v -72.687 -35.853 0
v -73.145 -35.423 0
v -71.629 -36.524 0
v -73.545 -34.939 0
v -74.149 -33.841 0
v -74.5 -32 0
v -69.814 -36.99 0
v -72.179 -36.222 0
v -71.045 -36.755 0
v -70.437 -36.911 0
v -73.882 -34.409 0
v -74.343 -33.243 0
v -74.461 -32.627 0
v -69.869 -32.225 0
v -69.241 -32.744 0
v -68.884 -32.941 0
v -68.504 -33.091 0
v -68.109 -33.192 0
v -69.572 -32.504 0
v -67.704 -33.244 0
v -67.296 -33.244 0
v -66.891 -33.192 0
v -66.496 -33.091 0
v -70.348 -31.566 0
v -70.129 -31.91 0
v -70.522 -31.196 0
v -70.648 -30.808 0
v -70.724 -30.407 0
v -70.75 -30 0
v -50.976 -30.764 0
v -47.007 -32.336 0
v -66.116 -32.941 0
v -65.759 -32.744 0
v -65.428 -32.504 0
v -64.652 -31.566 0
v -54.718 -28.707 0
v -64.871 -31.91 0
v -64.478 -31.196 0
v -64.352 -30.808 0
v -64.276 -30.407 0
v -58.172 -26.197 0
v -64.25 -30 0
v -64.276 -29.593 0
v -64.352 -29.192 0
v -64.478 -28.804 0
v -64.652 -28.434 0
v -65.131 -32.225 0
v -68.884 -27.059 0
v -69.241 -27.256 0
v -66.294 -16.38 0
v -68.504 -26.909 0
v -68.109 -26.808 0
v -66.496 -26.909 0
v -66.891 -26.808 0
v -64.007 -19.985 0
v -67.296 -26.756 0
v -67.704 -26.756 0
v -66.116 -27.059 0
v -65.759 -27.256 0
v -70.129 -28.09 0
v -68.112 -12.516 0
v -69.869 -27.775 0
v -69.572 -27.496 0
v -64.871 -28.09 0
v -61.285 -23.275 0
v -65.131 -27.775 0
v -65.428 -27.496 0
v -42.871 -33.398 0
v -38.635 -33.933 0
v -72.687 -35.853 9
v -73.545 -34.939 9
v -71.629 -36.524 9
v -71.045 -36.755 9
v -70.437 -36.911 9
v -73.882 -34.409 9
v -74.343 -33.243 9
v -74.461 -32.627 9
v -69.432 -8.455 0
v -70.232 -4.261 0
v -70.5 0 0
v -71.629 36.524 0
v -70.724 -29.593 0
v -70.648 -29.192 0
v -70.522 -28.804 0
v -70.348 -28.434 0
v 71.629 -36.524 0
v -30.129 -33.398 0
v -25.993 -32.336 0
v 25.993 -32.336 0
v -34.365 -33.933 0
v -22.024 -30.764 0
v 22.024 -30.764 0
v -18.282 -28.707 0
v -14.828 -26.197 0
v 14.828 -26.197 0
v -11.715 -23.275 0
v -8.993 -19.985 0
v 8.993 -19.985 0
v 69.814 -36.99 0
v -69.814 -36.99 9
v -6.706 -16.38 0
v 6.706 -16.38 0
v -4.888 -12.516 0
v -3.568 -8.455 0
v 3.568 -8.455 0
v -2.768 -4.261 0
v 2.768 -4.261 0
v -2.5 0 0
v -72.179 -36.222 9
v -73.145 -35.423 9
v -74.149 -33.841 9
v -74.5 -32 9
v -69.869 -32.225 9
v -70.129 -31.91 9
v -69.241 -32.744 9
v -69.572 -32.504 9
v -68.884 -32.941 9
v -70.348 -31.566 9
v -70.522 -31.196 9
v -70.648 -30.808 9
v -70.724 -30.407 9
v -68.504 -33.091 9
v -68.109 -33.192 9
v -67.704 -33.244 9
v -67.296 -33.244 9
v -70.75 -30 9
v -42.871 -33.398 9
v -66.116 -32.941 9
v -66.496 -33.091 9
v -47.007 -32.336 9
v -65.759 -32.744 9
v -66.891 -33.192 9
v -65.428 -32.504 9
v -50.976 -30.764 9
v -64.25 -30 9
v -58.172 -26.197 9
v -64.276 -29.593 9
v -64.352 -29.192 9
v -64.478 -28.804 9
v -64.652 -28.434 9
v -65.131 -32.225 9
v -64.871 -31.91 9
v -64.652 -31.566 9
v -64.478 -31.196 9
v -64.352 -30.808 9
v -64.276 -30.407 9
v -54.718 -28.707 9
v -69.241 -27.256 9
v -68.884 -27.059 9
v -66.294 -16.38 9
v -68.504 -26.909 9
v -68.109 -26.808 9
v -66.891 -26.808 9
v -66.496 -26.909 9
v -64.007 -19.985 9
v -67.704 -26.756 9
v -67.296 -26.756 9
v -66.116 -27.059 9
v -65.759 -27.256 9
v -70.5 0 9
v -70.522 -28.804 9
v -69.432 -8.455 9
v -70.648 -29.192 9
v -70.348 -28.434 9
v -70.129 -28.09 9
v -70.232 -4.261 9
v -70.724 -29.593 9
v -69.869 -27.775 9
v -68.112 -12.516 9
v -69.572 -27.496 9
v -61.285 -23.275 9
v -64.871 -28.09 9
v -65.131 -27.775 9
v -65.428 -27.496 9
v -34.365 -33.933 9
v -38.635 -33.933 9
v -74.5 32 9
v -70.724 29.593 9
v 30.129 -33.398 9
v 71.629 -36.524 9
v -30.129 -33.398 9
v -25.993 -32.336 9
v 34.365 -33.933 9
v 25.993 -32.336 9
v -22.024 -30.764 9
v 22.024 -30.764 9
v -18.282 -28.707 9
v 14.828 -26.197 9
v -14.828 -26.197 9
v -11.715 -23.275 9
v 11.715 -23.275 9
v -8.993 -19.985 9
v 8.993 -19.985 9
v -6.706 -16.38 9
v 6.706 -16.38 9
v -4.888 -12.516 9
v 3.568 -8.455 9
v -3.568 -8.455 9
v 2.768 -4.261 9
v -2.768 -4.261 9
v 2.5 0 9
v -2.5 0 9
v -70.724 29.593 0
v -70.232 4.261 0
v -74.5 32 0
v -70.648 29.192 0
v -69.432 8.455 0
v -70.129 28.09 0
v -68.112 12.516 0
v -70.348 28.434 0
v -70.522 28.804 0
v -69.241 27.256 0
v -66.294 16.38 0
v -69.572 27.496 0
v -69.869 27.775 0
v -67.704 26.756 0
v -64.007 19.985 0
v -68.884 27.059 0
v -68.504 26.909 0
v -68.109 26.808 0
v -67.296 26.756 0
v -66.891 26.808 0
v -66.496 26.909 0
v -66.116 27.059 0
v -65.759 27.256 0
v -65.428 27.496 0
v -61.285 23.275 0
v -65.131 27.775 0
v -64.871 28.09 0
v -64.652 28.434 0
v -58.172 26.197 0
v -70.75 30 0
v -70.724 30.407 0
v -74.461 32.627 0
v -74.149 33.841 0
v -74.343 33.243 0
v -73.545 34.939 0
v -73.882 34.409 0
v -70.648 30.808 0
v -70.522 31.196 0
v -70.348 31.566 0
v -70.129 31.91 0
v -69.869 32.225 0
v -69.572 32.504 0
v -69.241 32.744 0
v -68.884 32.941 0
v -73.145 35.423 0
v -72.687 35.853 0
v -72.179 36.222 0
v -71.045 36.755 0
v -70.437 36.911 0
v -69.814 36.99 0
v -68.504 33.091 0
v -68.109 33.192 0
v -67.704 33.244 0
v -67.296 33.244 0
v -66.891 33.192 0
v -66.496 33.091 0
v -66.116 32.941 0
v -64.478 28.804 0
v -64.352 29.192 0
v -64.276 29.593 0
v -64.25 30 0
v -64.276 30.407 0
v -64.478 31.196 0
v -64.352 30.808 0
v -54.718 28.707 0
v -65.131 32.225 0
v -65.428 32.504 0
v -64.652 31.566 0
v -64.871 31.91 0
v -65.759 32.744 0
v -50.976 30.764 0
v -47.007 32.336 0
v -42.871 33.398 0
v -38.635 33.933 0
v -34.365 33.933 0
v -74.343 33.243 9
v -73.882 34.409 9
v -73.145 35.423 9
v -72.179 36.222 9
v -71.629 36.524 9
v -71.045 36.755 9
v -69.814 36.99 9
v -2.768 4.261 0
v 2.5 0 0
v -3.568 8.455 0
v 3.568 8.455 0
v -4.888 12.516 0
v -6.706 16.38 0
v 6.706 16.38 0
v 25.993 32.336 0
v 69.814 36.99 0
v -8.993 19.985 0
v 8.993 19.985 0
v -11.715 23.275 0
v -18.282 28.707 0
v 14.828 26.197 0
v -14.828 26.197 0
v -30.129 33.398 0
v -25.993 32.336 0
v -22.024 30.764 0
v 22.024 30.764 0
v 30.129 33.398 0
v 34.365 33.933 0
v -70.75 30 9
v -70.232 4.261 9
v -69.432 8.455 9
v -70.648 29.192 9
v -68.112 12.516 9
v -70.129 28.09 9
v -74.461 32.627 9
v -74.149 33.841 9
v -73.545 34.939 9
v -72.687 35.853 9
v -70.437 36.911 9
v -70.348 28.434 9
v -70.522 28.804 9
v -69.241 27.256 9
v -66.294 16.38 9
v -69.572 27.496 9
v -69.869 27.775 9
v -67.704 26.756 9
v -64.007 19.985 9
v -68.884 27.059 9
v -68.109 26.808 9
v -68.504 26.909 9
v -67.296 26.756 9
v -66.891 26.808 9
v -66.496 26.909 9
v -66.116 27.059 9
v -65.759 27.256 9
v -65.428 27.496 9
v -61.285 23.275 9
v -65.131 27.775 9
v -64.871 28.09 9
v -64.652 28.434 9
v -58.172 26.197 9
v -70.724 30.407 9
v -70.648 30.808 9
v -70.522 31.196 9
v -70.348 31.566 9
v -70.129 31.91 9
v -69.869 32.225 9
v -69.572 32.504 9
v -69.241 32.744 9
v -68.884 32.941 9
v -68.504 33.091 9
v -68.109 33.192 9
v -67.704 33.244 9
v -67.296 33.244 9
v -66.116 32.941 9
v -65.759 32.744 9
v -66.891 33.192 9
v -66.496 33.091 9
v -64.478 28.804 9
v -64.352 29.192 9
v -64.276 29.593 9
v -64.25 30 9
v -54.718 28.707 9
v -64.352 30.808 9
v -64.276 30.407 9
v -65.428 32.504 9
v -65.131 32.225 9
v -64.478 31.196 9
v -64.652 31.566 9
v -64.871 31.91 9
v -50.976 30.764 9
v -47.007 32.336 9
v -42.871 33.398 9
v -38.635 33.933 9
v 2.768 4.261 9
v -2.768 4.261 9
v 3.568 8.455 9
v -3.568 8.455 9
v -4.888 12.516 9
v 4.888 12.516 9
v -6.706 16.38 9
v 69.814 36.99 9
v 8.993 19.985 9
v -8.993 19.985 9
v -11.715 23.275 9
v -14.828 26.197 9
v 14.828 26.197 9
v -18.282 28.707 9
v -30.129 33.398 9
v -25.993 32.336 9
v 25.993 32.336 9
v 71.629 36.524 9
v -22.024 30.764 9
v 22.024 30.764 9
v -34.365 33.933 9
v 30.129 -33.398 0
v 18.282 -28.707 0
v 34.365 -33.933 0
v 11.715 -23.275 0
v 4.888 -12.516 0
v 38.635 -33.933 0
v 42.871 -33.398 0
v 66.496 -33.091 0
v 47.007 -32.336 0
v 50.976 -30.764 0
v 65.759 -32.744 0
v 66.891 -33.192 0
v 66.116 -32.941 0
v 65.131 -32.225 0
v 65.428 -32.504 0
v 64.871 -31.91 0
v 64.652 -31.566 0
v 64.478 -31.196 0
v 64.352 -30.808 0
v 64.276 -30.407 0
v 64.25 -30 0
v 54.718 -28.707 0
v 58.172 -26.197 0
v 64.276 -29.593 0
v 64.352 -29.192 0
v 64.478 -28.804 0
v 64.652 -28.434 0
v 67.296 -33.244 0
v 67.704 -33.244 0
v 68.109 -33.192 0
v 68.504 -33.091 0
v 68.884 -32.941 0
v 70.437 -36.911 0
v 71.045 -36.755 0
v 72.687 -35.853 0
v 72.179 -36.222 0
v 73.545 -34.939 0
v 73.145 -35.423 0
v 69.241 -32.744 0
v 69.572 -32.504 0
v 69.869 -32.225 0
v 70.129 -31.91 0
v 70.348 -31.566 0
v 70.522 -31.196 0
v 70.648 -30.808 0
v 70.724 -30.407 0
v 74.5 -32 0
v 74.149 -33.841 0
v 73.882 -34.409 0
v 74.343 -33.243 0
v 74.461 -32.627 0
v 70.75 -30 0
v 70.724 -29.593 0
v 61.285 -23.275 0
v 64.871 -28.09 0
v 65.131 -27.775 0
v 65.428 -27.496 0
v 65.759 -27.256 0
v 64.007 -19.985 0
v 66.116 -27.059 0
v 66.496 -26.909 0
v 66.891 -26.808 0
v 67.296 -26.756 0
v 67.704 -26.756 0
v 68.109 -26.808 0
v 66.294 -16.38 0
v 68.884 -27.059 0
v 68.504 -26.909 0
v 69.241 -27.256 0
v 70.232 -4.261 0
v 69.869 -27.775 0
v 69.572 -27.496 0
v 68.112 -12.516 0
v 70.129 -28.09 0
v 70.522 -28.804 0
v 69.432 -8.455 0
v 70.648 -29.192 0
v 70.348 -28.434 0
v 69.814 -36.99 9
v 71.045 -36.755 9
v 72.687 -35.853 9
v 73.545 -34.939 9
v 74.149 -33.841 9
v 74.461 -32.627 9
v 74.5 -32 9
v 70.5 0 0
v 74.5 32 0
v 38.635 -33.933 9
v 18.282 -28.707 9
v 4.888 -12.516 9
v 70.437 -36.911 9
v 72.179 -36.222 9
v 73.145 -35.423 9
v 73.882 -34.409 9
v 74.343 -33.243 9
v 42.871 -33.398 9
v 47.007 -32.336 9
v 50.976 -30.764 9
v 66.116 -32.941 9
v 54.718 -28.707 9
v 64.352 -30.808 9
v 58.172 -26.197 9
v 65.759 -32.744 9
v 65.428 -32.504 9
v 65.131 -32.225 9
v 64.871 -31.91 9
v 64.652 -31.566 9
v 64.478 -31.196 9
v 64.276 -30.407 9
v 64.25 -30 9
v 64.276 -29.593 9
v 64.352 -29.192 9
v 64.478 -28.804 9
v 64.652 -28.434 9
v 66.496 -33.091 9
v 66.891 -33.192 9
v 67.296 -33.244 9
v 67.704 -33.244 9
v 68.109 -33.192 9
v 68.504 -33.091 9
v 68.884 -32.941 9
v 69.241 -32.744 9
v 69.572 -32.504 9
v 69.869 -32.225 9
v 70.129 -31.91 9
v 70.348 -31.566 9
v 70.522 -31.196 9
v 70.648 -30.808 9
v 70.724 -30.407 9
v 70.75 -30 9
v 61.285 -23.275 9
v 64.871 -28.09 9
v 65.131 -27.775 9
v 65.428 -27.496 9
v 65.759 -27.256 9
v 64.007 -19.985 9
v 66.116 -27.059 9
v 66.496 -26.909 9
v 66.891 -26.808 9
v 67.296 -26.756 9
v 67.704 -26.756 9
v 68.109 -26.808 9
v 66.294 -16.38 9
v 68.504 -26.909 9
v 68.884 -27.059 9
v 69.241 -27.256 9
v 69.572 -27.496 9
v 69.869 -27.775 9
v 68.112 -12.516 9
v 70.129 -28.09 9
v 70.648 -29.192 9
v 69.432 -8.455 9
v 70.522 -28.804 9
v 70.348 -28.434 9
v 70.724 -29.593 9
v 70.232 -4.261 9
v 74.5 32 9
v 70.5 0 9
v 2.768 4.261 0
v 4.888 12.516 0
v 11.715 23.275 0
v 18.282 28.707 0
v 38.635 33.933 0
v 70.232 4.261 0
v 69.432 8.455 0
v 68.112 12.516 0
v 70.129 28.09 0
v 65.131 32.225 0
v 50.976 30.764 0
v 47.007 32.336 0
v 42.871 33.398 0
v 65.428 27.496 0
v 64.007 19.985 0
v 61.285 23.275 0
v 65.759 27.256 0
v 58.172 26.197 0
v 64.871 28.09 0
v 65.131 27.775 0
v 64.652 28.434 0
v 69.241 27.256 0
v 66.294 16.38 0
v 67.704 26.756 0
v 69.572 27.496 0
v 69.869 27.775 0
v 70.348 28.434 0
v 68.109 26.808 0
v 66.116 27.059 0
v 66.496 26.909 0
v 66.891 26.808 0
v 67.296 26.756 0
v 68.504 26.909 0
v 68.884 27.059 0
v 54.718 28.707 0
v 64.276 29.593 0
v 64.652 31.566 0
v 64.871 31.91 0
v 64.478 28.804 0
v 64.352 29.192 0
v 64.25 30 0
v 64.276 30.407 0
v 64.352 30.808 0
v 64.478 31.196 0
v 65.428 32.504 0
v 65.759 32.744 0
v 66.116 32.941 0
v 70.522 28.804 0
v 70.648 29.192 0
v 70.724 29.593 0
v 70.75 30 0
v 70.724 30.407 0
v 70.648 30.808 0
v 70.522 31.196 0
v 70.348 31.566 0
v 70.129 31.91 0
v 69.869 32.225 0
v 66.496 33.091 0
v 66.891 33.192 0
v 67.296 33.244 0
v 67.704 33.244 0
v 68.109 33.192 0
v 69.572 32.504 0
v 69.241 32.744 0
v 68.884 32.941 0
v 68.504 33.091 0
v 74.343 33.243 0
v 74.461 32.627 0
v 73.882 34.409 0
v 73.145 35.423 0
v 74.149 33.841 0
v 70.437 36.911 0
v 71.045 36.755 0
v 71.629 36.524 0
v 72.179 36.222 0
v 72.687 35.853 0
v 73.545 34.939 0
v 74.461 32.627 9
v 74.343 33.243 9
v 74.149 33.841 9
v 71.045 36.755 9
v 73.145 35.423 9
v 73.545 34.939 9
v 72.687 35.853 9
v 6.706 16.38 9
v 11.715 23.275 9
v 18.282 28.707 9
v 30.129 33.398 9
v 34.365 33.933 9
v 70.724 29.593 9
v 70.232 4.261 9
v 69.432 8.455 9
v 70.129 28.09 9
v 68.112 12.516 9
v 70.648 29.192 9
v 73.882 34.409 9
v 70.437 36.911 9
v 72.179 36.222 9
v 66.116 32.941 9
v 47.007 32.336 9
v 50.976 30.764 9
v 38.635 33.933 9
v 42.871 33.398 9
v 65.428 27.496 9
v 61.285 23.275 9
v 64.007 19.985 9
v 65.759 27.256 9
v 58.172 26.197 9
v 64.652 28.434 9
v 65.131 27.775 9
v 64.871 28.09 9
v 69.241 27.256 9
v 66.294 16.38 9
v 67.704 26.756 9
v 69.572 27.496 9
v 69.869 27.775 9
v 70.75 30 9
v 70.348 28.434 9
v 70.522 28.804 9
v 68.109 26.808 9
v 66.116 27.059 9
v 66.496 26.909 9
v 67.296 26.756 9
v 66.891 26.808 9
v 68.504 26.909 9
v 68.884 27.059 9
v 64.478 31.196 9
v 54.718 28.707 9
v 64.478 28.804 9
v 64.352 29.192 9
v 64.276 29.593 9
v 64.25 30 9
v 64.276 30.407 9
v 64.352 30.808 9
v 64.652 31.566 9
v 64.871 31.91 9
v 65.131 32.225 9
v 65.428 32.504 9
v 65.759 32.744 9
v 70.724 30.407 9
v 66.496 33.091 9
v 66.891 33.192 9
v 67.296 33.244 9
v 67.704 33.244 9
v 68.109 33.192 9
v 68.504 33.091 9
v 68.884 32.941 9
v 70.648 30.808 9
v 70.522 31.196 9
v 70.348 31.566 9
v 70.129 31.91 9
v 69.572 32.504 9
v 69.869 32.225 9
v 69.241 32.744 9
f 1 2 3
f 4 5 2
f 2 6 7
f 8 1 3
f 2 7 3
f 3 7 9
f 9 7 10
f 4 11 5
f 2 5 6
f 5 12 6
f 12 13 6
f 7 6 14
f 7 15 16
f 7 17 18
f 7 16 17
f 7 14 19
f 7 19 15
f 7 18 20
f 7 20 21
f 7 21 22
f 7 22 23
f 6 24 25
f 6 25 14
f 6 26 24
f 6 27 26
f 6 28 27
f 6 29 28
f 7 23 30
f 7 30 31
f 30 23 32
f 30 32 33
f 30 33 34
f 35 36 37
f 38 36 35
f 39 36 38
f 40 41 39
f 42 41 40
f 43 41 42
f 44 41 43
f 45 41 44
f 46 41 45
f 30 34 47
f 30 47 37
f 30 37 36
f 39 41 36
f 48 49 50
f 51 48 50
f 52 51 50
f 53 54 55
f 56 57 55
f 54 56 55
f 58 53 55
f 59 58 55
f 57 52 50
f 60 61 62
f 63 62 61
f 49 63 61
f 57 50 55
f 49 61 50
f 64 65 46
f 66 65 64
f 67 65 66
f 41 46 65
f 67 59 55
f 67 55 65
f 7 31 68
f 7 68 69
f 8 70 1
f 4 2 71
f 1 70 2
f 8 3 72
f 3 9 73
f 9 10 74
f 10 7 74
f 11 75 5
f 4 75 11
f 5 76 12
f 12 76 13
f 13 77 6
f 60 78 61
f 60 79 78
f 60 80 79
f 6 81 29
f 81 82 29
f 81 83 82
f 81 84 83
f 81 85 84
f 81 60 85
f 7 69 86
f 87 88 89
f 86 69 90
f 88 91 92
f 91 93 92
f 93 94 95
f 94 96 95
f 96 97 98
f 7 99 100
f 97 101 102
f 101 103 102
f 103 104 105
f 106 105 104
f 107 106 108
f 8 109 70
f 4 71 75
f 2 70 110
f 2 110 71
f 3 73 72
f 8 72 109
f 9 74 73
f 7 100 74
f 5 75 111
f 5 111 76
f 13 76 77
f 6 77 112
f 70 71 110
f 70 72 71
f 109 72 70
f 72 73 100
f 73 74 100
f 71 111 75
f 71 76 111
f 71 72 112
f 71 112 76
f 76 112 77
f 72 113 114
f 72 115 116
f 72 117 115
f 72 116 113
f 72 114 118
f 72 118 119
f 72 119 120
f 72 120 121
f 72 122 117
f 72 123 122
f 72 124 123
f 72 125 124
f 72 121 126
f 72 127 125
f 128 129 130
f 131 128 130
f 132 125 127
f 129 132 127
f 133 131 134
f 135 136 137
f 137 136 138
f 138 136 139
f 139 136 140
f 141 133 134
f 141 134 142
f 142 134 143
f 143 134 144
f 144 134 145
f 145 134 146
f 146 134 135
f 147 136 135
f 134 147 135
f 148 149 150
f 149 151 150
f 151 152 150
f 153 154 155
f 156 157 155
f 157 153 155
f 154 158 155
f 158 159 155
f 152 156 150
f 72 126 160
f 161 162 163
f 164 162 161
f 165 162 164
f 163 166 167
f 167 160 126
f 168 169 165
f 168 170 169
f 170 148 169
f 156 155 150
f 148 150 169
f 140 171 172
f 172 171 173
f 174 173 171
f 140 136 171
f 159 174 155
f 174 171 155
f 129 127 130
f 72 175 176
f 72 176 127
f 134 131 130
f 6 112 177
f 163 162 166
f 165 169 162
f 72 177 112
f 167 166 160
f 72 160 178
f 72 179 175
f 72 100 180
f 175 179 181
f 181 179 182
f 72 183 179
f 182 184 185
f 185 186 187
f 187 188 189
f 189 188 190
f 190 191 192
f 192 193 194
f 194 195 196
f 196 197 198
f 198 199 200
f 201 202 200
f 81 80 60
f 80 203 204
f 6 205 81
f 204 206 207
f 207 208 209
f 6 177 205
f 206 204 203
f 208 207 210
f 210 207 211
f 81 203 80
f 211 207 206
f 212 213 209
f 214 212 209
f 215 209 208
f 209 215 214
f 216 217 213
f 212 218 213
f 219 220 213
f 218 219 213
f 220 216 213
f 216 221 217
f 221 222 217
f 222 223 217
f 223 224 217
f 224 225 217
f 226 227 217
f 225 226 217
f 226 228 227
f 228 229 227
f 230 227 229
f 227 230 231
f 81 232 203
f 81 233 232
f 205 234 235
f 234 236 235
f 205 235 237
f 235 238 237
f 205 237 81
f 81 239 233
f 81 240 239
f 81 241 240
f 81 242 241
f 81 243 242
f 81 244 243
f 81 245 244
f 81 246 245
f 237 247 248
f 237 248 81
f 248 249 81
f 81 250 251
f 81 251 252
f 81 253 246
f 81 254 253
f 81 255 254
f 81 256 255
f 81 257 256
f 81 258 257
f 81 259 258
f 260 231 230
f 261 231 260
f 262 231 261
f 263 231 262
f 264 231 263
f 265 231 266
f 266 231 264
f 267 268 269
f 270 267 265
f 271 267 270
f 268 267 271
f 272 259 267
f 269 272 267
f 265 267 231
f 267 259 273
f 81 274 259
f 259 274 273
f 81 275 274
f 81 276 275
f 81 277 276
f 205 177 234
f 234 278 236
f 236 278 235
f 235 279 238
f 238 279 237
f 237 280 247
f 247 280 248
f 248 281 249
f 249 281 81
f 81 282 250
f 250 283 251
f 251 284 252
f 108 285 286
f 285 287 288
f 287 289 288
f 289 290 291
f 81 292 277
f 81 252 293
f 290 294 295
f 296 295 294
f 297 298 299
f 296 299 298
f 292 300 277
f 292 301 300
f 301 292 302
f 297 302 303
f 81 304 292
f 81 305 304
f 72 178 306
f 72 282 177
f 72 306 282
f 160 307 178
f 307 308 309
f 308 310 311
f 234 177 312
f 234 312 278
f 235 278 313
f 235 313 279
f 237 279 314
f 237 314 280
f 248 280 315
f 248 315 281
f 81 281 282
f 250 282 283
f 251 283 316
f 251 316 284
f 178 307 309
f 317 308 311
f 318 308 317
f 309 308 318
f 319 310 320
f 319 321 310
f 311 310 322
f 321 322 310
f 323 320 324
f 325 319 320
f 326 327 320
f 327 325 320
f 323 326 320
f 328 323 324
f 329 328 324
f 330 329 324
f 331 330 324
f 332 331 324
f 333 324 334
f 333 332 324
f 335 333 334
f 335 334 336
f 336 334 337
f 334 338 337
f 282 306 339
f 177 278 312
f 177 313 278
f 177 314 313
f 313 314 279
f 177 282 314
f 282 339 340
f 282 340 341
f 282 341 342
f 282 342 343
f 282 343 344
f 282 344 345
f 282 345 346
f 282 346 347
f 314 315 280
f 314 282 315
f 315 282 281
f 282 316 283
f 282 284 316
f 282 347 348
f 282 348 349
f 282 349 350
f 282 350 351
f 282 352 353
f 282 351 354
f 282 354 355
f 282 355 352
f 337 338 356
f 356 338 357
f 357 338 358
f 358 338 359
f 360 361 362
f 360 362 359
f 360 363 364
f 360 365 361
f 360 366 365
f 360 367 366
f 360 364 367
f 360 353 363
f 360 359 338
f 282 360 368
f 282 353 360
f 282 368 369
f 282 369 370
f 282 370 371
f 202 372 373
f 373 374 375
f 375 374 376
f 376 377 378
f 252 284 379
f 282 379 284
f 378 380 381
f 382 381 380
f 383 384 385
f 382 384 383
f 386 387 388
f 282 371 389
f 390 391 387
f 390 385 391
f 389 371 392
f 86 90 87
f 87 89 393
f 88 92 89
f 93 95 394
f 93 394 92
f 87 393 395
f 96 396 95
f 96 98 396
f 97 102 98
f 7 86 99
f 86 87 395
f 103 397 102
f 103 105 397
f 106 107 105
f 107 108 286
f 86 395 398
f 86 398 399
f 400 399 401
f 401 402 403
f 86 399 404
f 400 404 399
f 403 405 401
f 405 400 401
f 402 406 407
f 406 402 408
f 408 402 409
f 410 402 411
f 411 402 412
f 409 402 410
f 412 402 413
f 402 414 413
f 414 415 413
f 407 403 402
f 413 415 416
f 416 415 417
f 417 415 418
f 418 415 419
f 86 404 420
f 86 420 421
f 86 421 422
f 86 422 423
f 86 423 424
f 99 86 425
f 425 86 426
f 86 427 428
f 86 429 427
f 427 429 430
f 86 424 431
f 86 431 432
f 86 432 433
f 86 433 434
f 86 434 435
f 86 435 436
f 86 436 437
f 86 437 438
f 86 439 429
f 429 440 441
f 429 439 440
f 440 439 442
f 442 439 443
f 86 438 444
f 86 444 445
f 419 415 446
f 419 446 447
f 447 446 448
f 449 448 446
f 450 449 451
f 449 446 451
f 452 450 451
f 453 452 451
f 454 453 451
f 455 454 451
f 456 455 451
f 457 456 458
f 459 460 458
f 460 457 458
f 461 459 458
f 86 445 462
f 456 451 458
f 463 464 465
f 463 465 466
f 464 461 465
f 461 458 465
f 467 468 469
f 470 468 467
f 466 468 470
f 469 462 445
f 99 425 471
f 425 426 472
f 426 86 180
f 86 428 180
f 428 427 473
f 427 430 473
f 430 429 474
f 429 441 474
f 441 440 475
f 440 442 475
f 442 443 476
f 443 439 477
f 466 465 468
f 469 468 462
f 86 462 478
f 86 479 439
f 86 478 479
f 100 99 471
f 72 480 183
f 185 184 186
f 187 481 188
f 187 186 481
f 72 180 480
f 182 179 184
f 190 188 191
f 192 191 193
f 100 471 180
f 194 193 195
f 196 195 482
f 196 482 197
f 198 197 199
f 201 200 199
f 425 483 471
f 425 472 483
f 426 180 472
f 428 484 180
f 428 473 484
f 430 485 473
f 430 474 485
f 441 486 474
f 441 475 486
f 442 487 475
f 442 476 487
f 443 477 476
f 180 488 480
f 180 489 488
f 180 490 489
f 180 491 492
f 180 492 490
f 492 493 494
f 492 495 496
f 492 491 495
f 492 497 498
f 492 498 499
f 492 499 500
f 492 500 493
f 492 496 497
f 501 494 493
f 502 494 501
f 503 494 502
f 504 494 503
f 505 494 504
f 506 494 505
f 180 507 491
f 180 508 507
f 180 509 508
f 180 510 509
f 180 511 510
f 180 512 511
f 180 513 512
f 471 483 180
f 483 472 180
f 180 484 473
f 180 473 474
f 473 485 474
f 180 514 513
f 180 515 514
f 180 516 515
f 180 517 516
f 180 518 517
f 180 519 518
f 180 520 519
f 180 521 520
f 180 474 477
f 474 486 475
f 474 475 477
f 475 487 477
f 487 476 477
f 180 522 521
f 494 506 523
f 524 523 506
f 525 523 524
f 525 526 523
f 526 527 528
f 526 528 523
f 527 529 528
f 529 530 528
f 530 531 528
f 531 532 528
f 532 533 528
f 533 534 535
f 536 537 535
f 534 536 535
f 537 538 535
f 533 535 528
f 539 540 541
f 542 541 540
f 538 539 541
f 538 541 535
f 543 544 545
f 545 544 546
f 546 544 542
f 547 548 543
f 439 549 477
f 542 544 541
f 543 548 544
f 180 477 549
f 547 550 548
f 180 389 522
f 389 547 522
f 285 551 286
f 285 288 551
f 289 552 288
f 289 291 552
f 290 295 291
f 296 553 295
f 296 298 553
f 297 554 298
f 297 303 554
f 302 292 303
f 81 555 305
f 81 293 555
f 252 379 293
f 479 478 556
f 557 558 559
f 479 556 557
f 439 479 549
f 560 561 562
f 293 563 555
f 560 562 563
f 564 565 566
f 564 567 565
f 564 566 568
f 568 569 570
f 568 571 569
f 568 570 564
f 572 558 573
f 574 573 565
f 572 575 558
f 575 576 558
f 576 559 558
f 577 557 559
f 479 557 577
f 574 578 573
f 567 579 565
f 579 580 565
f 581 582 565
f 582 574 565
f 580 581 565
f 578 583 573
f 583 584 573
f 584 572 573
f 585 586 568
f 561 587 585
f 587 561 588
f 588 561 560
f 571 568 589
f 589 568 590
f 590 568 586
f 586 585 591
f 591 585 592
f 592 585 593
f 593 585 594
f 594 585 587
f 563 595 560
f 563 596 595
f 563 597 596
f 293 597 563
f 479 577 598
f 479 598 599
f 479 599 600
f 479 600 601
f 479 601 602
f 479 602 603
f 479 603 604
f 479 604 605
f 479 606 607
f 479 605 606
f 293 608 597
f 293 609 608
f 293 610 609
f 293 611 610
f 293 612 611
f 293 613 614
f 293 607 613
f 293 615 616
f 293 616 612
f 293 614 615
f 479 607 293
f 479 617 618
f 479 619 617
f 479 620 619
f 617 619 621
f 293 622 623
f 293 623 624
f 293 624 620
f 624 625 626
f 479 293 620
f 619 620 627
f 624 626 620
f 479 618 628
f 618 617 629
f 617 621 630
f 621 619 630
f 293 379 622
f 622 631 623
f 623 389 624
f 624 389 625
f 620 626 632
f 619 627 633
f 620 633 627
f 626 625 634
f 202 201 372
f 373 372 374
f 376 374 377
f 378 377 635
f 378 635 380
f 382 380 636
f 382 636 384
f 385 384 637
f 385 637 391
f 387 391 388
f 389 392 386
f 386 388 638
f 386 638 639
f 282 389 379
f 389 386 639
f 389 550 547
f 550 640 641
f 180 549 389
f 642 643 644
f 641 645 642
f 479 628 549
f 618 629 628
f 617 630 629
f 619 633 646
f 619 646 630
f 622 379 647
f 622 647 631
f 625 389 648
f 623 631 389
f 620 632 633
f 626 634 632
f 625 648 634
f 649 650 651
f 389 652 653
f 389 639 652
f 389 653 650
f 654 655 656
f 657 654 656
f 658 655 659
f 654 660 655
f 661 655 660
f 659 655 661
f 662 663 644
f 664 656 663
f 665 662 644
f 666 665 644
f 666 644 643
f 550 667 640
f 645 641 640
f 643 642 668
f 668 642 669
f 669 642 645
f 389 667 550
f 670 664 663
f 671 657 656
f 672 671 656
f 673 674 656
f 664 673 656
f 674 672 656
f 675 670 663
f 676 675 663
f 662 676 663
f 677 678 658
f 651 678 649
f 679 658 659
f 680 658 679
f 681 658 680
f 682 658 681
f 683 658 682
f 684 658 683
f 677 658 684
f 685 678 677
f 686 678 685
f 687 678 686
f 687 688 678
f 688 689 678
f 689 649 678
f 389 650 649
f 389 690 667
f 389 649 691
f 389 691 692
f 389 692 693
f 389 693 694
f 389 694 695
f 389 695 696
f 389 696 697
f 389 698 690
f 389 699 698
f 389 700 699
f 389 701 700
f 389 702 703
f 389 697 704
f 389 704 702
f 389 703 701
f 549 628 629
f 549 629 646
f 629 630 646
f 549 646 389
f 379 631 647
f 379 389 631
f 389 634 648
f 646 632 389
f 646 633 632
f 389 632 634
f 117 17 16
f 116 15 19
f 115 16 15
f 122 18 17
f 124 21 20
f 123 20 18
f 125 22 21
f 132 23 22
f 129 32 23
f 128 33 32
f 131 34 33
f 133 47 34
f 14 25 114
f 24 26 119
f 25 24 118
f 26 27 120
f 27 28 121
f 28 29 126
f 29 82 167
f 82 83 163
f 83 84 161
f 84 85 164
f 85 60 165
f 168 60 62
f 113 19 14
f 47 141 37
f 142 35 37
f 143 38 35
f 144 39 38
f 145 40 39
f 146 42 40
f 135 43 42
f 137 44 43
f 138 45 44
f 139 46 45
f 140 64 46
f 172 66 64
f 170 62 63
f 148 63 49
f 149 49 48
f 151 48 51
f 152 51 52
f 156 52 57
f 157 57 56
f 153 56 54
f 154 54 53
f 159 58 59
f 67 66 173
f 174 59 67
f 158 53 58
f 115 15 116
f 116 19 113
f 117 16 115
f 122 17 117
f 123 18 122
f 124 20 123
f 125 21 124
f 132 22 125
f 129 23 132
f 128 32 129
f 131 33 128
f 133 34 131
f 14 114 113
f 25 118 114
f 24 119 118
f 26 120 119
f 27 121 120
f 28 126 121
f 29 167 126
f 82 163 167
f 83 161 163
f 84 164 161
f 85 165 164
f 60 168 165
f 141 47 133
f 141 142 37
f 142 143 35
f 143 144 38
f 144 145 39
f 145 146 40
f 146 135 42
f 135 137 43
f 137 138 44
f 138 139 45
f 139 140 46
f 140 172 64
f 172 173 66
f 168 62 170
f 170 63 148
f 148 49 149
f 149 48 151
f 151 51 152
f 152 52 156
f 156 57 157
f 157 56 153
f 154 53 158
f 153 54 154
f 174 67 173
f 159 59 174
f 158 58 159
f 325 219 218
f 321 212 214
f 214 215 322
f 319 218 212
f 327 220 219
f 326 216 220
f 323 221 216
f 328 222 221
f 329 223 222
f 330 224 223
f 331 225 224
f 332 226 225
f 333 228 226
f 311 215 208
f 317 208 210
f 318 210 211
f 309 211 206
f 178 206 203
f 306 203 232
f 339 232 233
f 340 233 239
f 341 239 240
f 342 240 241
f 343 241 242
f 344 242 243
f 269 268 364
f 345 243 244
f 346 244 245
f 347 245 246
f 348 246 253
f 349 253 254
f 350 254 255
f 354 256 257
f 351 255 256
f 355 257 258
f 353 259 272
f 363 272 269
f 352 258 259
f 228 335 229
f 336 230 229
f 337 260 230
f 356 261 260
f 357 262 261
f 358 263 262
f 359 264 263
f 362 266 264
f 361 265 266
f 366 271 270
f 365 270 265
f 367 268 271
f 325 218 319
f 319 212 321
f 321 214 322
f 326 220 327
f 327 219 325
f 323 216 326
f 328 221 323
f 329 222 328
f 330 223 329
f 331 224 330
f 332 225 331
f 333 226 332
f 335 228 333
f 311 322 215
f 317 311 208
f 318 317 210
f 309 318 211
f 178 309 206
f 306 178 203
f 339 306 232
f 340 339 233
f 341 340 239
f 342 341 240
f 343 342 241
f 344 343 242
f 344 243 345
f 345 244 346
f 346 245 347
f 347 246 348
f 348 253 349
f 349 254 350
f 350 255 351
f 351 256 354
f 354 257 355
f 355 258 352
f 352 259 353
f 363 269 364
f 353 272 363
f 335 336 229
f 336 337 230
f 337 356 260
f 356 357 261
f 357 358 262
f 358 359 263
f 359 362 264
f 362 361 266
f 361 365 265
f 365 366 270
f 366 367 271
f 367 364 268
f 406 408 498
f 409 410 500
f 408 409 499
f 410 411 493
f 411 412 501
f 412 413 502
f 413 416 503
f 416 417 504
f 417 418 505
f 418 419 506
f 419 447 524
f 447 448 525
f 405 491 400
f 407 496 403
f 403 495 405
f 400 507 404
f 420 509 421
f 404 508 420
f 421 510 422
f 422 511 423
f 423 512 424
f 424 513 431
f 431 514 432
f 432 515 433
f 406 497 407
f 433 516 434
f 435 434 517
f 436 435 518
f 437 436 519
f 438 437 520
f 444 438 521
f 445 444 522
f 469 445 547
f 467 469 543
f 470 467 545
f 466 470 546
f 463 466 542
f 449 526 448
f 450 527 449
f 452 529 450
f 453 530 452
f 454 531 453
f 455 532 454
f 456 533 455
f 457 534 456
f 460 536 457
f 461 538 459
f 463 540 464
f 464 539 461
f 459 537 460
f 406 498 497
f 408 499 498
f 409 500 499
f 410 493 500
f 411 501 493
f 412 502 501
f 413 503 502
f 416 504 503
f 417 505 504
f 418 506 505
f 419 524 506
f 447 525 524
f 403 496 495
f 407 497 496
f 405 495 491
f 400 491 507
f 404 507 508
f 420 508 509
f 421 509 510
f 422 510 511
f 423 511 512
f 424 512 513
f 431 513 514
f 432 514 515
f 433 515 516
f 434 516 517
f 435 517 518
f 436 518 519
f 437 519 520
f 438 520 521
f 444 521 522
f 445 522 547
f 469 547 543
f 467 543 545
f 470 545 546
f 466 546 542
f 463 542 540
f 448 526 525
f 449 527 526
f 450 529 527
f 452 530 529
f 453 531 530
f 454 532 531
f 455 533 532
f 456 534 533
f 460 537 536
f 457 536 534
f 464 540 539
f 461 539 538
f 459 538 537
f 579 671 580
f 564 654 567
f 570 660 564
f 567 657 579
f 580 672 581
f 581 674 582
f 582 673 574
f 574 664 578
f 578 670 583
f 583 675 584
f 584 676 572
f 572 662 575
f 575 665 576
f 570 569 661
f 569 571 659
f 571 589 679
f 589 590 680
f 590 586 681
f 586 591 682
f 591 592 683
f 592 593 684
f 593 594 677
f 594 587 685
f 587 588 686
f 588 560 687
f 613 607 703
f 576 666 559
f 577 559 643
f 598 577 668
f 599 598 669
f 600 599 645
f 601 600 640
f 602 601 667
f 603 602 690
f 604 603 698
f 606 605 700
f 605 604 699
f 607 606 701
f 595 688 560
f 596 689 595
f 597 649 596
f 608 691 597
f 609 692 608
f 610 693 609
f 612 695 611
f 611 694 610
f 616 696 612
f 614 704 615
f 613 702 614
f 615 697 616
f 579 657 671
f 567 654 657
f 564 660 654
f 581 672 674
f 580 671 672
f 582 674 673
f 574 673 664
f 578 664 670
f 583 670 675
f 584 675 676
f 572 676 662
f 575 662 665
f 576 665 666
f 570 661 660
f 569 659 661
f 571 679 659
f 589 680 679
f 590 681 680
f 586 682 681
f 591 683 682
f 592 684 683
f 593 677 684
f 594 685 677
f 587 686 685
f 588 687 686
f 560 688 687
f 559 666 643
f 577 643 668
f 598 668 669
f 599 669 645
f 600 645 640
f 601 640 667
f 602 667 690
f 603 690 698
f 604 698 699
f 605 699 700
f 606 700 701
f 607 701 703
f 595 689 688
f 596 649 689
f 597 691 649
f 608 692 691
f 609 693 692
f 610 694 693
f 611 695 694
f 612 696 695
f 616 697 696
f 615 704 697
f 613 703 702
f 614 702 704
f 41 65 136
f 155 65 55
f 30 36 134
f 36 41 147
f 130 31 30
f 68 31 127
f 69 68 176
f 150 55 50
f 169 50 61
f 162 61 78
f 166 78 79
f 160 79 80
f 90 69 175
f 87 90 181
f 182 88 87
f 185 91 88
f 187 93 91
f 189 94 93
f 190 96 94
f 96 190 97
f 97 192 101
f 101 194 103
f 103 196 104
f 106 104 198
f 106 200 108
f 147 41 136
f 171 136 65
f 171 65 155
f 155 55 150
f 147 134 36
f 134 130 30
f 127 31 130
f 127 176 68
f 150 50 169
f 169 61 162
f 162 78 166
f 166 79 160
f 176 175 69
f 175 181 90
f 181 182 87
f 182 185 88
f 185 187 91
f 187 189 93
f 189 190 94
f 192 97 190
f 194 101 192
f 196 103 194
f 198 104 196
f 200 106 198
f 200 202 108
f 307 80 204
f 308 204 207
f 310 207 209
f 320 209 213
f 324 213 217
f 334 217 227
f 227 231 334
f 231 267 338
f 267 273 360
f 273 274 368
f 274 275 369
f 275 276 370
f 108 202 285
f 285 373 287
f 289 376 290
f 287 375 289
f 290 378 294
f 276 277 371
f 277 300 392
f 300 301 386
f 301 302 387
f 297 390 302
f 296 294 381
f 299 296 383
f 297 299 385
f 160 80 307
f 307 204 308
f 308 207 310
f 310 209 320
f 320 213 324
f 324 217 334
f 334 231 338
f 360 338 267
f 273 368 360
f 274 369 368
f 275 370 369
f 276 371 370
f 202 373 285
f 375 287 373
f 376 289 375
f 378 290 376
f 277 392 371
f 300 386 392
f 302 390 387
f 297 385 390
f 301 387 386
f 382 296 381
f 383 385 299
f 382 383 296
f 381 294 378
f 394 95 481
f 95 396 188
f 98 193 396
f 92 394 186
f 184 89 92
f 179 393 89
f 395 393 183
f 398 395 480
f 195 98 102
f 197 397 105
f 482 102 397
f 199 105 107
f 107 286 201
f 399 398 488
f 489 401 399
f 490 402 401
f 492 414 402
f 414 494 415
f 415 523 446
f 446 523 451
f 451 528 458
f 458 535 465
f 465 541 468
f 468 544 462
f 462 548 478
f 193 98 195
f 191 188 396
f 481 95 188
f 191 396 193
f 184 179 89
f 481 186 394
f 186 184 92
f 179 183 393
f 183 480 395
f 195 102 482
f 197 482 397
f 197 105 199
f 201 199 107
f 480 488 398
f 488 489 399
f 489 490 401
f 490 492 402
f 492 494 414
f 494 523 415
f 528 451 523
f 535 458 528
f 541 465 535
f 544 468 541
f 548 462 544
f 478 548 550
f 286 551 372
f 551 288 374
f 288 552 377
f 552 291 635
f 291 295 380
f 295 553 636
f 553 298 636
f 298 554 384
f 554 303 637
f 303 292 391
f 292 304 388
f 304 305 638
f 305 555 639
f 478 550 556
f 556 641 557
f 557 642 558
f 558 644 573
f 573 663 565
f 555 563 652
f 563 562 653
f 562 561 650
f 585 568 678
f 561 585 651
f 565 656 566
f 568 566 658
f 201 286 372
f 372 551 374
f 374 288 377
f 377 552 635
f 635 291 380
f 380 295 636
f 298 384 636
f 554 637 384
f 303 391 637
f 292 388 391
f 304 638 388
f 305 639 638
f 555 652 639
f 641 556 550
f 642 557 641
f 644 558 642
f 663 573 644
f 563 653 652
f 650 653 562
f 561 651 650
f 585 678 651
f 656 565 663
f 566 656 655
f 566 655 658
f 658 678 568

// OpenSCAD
$fn = 50;

difference() {
	union() {
		hull() {
			translate(v = [-69.5, 32.0, 0]) {
				cylinder(h = 9, r = 5);
			}
			translate(v = [69.5, 32.0, 0]) {
				cylinder(h = 9, r = 5);
			}
			translate(v = [-69.5, -32.0, 0]) {
				cylinder(h = 9, r = 5);
			}
			translate(v = [69.5, -32.0, 0]) {
				cylinder(h = 9, r = 5);
			}
		}
	}
	union() {
		translate(v = [-67.5, -30.0, -100.0]) {
			cylinder(h = 200, r = 3.25);
		}
		translate(v = [-67.5, 30.0, -100.0]) {
			cylinder(h = 200, r = 3.25);
		}
		translate(v = [67.5, -30.0, -100.0]) {
			cylinder(h = 200, r = 3.25);
		}
		translate(v = [67.5, 30.0, -100.0]) {
			cylinder(h = 200, r = 3.25);
		}
		translate(v = [-67.5, -30.0, -100.0]) {
			cylinder(h = 200, r = 1.8);
		}
		translate(v = [-67.5, 30.0, -100.0]) {
			cylinder(h = 200, r = 1.8);
		}
		translate(v = [67.5, -30.0, -100.0]) {
			cylinder(h = 200, r = 1.8);
		}
		translate(v = [67.5, 30.0, -100.0]) {
			cylinder(h = 200, r = 1.8);
		}
		translate(v = [-36.5, 0, 0.0]) {
			cylinder(h = 9, r = 34.0);
		}
		translate(v = [36.5, 0, 0.0]) {
			cylinder(h = 9, r = 34.0);
		}
	}
}
